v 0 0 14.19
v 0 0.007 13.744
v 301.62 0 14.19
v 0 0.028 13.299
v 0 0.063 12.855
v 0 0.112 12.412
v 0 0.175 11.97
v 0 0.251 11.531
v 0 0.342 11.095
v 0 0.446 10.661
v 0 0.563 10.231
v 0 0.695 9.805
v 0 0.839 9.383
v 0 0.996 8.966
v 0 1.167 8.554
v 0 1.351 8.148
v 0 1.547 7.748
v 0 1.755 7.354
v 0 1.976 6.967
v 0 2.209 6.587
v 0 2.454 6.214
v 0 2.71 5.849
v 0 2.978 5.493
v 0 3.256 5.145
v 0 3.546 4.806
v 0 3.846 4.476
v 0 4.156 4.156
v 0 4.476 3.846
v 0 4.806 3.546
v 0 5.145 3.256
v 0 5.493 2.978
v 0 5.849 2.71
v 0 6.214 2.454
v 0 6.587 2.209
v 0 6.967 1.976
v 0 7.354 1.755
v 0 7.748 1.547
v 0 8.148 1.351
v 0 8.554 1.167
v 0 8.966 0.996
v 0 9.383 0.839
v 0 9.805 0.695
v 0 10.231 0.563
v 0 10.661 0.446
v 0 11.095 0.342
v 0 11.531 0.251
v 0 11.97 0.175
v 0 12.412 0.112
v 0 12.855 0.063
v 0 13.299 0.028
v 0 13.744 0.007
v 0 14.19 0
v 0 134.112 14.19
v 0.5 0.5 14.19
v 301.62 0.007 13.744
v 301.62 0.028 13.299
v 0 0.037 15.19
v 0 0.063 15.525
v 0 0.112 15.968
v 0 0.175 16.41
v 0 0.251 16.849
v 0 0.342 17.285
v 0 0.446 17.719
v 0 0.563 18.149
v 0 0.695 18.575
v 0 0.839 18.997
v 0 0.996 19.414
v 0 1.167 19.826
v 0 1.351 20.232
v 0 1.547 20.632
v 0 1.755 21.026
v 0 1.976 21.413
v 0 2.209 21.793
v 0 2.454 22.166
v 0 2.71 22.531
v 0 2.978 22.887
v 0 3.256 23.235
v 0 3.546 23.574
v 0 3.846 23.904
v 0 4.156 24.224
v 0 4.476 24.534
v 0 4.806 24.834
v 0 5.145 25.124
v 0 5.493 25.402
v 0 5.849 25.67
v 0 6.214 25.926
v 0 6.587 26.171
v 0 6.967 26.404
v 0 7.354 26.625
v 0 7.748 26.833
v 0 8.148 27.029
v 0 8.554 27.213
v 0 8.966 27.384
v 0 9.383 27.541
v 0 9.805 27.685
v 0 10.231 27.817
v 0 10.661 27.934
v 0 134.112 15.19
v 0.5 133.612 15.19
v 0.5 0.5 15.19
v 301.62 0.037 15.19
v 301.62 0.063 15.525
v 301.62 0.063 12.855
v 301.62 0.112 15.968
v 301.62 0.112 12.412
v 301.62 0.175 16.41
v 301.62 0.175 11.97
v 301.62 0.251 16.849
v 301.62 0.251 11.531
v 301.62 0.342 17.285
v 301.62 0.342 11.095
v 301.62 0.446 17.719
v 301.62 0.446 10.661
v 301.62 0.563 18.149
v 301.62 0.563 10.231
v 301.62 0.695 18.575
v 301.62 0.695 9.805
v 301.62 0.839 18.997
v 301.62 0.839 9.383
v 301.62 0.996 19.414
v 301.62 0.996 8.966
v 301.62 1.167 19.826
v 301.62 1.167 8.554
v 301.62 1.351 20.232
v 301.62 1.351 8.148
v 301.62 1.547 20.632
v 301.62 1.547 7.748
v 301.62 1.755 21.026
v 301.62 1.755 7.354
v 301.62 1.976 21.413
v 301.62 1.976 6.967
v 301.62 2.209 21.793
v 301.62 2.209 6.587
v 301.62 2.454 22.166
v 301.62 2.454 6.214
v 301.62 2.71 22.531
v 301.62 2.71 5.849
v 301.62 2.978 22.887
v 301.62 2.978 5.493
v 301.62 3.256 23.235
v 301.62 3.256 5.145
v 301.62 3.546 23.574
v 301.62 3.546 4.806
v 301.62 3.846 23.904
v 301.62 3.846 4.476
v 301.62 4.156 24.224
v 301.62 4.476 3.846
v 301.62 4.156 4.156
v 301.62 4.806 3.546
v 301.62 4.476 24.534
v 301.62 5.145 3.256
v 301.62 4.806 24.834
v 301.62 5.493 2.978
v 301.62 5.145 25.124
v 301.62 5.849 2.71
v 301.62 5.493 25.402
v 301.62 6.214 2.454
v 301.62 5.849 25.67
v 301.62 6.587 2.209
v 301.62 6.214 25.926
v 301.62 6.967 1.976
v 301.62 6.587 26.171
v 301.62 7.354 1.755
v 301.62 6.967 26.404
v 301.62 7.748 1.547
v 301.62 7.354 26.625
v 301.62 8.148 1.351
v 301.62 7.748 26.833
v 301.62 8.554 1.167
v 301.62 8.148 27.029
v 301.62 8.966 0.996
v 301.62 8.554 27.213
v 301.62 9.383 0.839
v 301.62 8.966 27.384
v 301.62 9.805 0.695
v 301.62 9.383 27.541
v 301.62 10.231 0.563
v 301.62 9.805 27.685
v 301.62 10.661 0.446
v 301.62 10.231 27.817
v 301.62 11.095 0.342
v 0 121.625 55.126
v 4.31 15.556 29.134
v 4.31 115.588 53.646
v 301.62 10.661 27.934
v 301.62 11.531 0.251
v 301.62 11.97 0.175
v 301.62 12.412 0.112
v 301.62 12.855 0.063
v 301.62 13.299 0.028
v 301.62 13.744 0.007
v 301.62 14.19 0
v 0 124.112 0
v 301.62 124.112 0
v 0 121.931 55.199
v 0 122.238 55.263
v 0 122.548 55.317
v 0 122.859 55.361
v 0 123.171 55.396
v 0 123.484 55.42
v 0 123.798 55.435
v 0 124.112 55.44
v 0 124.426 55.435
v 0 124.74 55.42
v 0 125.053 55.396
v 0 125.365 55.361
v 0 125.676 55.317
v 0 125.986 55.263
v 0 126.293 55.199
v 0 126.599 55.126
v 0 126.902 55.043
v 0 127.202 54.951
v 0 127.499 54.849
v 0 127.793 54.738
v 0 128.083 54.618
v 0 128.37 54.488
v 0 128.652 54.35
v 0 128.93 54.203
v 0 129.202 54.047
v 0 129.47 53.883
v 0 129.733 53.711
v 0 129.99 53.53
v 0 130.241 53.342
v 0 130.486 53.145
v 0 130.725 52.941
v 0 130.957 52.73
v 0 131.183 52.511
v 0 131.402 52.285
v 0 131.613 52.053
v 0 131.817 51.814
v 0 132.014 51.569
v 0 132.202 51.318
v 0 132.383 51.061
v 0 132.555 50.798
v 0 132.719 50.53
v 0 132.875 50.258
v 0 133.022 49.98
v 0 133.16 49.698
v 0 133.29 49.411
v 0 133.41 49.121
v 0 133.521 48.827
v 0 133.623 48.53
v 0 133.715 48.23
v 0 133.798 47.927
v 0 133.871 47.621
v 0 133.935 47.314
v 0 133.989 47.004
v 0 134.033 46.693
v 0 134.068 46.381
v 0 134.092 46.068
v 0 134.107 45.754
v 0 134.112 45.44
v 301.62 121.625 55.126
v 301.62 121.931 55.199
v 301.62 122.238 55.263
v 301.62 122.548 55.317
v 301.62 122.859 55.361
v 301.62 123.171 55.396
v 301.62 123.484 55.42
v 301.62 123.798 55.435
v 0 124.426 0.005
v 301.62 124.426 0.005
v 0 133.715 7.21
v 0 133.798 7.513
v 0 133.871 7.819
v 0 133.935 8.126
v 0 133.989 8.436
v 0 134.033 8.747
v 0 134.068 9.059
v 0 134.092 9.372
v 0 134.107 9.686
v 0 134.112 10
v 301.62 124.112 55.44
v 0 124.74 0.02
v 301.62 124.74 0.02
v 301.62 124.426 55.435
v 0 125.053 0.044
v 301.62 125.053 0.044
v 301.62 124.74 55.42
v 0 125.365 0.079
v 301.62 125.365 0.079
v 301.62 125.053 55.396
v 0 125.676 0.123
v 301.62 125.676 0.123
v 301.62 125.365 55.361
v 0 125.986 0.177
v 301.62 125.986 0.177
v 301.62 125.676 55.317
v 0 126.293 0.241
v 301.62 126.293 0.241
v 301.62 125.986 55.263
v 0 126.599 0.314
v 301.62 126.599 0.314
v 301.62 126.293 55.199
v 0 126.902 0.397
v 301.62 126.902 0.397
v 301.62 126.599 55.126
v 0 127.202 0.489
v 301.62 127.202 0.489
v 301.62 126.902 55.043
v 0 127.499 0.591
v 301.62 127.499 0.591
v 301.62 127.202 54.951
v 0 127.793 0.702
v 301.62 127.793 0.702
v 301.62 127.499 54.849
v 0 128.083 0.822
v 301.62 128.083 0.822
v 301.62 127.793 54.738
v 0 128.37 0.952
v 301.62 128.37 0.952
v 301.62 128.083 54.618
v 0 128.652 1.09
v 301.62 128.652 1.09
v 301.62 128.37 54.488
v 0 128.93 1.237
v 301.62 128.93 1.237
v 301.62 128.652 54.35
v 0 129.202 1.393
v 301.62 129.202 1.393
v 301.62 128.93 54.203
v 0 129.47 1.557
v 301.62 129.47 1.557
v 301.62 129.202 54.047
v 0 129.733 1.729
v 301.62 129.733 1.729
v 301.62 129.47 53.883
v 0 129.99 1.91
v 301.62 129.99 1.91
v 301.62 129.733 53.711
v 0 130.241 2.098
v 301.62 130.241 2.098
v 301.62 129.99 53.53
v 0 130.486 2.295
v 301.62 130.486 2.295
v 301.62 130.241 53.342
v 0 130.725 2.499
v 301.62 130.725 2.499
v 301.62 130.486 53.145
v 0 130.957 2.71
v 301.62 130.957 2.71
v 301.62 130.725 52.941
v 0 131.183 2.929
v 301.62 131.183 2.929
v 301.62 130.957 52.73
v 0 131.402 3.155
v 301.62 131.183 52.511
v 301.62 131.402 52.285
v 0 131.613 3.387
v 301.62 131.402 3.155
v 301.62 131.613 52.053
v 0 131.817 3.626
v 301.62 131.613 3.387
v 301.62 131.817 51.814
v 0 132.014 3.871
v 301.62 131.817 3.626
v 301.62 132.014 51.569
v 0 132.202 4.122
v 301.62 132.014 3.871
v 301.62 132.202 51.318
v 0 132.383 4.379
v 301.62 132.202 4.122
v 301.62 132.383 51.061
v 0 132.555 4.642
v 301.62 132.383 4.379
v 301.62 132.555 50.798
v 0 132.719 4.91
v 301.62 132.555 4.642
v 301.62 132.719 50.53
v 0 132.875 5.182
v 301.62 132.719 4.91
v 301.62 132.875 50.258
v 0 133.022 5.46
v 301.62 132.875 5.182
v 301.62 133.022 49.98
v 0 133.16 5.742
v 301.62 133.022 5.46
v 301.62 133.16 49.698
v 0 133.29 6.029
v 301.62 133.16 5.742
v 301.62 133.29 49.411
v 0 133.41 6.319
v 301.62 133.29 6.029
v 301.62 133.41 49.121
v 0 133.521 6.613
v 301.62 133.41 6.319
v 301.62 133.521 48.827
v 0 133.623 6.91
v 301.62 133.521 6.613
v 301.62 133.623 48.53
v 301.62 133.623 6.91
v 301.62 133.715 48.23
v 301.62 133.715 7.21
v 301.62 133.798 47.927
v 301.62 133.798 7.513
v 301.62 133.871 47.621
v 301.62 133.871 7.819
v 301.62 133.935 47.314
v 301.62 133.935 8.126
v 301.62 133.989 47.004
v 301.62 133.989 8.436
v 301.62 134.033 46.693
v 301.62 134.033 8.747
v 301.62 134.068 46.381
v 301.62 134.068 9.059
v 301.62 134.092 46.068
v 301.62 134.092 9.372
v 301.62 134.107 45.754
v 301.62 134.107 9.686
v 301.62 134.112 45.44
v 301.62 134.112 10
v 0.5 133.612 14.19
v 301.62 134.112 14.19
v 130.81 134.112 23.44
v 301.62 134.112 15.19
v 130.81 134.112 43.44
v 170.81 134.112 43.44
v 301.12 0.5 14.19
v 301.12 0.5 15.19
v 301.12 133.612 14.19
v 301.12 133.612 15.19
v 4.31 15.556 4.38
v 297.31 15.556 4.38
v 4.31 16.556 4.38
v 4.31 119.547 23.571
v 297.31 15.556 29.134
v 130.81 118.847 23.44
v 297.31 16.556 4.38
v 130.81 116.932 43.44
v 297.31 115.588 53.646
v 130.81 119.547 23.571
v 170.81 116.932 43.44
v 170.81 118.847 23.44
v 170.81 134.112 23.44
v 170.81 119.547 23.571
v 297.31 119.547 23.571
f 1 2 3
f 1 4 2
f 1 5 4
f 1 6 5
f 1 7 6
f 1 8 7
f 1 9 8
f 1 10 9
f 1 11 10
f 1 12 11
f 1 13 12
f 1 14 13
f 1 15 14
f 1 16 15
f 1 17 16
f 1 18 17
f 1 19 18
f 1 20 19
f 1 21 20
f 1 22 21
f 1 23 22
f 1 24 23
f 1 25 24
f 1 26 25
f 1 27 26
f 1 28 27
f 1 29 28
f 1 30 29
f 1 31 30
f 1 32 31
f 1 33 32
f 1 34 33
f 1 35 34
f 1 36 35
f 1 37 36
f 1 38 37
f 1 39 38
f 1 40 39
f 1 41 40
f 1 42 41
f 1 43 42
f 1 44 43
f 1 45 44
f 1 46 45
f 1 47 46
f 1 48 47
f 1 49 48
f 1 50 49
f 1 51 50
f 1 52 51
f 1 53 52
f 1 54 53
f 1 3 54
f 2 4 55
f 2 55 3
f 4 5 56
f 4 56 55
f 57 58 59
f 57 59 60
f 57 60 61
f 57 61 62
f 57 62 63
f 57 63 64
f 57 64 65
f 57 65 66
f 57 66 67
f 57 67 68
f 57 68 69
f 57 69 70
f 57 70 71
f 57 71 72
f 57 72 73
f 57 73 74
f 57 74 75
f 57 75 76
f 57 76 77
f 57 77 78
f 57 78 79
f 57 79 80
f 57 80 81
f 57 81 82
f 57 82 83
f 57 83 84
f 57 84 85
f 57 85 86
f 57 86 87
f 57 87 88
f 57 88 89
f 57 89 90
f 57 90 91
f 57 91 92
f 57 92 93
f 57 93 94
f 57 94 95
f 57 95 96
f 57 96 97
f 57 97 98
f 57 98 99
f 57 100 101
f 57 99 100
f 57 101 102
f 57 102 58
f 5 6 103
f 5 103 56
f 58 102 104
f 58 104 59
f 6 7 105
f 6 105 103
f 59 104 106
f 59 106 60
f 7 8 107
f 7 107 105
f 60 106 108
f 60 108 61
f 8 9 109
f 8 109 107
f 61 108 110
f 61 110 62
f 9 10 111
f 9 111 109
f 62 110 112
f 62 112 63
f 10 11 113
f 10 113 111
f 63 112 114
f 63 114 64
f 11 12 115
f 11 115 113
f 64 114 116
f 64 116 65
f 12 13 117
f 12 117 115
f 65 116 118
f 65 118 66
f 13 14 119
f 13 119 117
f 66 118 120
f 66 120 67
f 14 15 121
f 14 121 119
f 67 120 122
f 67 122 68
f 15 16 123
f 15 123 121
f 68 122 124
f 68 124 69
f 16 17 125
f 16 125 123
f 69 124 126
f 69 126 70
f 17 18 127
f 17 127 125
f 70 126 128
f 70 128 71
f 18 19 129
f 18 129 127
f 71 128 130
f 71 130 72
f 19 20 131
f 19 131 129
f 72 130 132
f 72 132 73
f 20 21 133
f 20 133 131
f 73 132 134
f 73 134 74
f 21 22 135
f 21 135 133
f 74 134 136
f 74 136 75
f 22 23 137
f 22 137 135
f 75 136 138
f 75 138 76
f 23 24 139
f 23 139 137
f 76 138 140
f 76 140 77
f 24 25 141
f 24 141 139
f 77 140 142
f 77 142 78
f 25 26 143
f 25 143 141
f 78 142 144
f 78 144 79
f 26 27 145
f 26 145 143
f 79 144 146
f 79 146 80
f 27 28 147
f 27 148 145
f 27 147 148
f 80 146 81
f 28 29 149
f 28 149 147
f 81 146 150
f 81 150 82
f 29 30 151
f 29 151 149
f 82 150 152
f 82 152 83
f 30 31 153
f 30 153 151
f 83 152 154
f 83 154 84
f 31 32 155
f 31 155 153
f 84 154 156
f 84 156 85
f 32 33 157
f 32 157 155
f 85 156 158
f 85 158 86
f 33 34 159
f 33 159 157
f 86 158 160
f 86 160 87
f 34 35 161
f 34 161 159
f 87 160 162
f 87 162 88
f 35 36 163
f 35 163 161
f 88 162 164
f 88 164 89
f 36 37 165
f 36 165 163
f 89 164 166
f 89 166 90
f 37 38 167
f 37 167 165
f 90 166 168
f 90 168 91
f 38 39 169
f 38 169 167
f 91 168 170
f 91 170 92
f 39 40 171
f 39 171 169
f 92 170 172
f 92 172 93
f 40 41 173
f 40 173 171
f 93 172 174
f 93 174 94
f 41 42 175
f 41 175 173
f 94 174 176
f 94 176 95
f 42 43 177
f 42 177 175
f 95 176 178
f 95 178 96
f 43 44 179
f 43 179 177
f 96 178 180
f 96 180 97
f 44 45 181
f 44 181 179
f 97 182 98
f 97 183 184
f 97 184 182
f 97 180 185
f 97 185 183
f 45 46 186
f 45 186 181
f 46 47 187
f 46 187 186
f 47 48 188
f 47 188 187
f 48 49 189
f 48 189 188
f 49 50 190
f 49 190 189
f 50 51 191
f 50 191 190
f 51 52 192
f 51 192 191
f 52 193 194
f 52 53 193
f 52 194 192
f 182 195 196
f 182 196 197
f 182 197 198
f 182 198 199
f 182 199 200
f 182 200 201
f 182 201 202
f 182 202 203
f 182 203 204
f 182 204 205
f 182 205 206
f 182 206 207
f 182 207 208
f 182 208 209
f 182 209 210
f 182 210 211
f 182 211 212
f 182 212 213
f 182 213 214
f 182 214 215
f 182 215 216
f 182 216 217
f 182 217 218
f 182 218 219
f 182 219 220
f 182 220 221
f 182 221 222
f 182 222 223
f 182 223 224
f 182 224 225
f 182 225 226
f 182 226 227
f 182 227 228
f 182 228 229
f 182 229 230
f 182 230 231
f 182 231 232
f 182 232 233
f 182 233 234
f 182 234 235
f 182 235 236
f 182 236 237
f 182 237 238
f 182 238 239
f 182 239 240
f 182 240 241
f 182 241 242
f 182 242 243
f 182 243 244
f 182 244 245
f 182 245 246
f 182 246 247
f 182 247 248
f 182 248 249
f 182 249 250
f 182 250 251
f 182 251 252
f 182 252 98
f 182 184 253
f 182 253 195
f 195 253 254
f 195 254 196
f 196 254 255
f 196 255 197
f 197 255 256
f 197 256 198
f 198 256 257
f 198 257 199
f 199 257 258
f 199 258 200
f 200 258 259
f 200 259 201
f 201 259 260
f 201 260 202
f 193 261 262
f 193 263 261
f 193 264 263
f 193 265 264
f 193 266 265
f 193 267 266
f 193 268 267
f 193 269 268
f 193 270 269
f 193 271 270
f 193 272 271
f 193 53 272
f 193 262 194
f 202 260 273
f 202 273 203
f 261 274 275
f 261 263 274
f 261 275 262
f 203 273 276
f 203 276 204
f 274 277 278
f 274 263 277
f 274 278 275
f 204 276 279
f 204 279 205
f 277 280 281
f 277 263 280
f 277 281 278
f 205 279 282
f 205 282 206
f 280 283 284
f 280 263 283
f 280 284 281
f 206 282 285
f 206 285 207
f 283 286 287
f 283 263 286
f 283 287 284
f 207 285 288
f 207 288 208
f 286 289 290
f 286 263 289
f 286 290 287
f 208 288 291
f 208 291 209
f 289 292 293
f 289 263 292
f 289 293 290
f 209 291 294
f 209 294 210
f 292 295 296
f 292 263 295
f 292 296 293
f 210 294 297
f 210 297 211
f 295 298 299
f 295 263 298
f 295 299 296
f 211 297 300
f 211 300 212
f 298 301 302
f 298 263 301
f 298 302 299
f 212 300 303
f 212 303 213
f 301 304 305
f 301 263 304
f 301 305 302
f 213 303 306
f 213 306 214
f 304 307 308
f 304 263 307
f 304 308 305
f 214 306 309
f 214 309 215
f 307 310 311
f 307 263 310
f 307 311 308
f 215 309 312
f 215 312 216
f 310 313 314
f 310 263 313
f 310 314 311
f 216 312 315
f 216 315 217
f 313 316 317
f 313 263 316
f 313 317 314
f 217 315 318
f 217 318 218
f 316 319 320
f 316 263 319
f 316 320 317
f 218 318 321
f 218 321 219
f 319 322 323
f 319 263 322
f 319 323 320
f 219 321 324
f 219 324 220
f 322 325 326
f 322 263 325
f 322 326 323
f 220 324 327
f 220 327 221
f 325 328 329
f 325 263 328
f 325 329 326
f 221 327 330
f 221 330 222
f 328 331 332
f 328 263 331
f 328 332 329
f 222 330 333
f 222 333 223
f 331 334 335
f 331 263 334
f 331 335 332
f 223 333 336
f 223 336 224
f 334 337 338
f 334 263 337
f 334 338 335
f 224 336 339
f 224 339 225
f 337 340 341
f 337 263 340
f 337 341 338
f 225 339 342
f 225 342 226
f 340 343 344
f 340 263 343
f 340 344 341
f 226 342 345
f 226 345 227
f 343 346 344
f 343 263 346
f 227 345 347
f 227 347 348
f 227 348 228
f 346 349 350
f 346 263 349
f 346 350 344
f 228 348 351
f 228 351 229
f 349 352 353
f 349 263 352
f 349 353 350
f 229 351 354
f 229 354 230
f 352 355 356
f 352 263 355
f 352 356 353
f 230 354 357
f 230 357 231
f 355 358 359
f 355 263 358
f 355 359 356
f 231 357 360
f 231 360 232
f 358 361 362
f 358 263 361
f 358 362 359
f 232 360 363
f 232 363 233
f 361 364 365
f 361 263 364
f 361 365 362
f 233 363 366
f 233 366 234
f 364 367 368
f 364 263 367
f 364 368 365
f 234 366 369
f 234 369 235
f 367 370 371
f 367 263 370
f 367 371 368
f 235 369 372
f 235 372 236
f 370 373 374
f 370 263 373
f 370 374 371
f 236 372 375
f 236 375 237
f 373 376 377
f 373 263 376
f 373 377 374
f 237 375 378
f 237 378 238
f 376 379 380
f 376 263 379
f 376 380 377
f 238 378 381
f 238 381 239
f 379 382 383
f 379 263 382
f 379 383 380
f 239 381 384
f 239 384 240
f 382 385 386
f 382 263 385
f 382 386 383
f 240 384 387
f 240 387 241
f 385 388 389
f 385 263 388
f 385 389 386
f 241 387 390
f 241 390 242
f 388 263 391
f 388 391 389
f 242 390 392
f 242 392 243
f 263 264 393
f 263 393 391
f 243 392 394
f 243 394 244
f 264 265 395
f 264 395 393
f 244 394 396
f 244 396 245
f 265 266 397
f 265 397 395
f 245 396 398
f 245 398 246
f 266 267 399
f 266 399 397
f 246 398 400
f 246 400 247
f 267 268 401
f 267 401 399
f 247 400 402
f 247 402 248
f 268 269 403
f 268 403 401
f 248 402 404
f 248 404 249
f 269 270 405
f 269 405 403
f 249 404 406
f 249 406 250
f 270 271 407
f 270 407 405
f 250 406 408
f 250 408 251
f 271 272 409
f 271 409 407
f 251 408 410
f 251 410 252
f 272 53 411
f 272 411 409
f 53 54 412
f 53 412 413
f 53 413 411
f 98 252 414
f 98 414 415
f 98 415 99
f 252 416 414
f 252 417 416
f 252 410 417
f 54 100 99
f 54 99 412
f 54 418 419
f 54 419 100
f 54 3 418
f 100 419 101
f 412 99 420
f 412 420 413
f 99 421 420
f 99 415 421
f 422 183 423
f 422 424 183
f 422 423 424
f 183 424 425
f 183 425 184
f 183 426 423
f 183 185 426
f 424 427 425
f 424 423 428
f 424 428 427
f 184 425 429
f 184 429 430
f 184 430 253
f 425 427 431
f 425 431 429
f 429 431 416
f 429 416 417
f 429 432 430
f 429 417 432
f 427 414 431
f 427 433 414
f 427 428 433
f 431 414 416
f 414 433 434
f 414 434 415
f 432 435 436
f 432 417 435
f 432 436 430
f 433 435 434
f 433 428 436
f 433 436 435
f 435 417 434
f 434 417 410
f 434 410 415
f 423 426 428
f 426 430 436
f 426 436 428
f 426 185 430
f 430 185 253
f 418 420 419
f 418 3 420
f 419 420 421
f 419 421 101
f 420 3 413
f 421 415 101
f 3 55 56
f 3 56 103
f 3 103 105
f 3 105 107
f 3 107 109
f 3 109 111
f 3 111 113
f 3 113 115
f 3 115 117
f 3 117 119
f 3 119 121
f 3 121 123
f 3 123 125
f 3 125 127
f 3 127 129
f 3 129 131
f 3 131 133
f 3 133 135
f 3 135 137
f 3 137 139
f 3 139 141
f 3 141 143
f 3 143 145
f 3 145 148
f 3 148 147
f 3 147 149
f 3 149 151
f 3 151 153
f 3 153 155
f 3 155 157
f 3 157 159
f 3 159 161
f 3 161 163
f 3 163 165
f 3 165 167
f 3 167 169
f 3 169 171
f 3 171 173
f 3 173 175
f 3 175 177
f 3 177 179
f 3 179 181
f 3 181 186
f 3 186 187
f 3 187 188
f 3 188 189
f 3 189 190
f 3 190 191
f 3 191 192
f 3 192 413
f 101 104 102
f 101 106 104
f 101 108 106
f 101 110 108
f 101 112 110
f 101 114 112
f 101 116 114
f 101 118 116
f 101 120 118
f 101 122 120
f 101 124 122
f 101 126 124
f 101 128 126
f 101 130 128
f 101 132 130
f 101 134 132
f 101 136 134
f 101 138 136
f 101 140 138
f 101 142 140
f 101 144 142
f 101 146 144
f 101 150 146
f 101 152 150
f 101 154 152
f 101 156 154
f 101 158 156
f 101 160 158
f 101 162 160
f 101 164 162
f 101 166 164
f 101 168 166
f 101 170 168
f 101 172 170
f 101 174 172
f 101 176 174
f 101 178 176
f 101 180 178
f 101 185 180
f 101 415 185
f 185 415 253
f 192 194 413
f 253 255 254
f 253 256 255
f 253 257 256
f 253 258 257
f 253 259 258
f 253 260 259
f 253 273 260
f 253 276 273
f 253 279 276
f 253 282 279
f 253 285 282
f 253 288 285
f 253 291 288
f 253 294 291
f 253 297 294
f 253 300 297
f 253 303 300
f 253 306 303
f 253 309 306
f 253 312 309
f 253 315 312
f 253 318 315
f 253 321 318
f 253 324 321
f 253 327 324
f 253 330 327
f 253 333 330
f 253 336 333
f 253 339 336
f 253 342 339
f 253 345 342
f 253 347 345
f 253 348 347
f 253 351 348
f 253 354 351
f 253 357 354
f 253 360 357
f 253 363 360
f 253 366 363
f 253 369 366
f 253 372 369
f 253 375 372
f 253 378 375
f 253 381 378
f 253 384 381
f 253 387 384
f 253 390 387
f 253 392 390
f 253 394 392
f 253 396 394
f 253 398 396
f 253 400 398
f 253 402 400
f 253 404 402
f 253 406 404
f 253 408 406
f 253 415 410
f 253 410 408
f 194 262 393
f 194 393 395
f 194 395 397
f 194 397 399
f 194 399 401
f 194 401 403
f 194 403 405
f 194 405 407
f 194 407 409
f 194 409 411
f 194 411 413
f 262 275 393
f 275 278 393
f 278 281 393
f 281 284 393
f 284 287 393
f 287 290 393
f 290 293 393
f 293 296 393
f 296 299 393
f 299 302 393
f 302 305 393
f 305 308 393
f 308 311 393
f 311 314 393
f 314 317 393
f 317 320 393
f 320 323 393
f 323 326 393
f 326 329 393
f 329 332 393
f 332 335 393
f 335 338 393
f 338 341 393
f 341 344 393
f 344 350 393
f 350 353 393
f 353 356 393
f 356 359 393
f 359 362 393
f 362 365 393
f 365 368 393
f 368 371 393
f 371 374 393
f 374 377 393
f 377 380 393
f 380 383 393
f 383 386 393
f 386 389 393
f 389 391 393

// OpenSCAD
// VT100 Terminal Replica 66% Tastatur

$fn = 200;     // Fix 100 Facetten pro Kreis (langsam bei großen Objekten)
$fa = 1;       // Minimaler Winkel 1° pro Facette (empfohlen)
$fs = 0.2;     // Minimale Facettengröße 0.2mm (3D-Druck-optimiert)


// Masse der Tastatur Replika
function scale(x) = 0.66 * x;
fuss = 5;

kb_x = scale(457);      //302;         // Breite
kb_y = scale(203.2);    //134;         // Tiefe
kb_z_vorn = scale(48 - fuss);  // 30          //Hoehe vorne
kb_z_hinten = scale(89 - fuss);// 50;         // Hoehe hinten

echo("kb_x =", kb_x);
echo("kb_y =", kb_y);
echo("kb_z_vorn =", kb_z_vorn);
echo("kb_z_hinten =", kb_z_hinten);

// Aussenmasse der Tastatur
t_x = 293;          // Breite;
t_y = 103;          // Tiefe
t_z_vorn = 24;      // Hoehe vorn
t_z_hinten = 32;    // Hoehe hinten





// VT100 Tastatur Gehäuse


module ausschnitt(){
  dx = (kb_x - t_x)/2;
  dy = (kb_y - t_y)/2;
  dz_vorn = kb_z_vorn - t_z_vorn;
  dz_hinten = kb_z_hinten - t_z_hinten; 

  color("red")
    hull(){
        translate([dx, dy, dz_vorn])
            cube([t_x, 1, t_z_vorn + 10]);
        
        translate([dx, kb_y - dy, dz_hinten])
        rotate([7.5,0,0])
            cube([t_x, 1, t_z_hinten + 10]);
    }

}

module usb_stecker(){
    color("green")
        translate([kb_x/2, kb_y -10, kb_z_hinten - t_z_hinten + 10])
            cube([40, 25, 20], center = true);
}

module nut(d){
    color("Blue")
        translate([0,0, kb_z_vorn/2])
        difference(){
            cube([kb_x + d, kb_y + d, d]);
            translate([d/2, d/2, 0])
            cube([kb_x - d, kb_y - d , d]);
    }
}

module tastatur(breite, tiefe, hoehe_vorne, hoehe_hinten) {
    r_vorn = hoehe_vorne/2;
    r_hinten = 10;

   hull() {
    // Vorne
    translate([0, r_vorn, r_vorn])
            rotate([0,90,0])
                cylinder(h=breite, r=r_vorn, center= false);

    union(){
        translate([0, tiefe-r_hinten, r_hinten])
            rotate([0,90,0])
                cylinder(h=breite, r=r_hinten, center= false);
        translate([0, tiefe-r_hinten, hoehe_hinten-r_hinten])
            rotate([0,90,0])
                cylinder(h=breite, r=r_hinten, center= false);
        }
    }
}



// VT100 Tastatur Gehäuse in 66%
// tastatur(302, 134, 32, 59);

render() // wird sonst nicht korrekt angezeigt in preview
{
    difference()
    {
    tastatur(kb_x, kb_y, kb_z_vorn, kb_z_hinten);
    ausschnitt();
    usb_stecker();
    nut(1);
    }
}
